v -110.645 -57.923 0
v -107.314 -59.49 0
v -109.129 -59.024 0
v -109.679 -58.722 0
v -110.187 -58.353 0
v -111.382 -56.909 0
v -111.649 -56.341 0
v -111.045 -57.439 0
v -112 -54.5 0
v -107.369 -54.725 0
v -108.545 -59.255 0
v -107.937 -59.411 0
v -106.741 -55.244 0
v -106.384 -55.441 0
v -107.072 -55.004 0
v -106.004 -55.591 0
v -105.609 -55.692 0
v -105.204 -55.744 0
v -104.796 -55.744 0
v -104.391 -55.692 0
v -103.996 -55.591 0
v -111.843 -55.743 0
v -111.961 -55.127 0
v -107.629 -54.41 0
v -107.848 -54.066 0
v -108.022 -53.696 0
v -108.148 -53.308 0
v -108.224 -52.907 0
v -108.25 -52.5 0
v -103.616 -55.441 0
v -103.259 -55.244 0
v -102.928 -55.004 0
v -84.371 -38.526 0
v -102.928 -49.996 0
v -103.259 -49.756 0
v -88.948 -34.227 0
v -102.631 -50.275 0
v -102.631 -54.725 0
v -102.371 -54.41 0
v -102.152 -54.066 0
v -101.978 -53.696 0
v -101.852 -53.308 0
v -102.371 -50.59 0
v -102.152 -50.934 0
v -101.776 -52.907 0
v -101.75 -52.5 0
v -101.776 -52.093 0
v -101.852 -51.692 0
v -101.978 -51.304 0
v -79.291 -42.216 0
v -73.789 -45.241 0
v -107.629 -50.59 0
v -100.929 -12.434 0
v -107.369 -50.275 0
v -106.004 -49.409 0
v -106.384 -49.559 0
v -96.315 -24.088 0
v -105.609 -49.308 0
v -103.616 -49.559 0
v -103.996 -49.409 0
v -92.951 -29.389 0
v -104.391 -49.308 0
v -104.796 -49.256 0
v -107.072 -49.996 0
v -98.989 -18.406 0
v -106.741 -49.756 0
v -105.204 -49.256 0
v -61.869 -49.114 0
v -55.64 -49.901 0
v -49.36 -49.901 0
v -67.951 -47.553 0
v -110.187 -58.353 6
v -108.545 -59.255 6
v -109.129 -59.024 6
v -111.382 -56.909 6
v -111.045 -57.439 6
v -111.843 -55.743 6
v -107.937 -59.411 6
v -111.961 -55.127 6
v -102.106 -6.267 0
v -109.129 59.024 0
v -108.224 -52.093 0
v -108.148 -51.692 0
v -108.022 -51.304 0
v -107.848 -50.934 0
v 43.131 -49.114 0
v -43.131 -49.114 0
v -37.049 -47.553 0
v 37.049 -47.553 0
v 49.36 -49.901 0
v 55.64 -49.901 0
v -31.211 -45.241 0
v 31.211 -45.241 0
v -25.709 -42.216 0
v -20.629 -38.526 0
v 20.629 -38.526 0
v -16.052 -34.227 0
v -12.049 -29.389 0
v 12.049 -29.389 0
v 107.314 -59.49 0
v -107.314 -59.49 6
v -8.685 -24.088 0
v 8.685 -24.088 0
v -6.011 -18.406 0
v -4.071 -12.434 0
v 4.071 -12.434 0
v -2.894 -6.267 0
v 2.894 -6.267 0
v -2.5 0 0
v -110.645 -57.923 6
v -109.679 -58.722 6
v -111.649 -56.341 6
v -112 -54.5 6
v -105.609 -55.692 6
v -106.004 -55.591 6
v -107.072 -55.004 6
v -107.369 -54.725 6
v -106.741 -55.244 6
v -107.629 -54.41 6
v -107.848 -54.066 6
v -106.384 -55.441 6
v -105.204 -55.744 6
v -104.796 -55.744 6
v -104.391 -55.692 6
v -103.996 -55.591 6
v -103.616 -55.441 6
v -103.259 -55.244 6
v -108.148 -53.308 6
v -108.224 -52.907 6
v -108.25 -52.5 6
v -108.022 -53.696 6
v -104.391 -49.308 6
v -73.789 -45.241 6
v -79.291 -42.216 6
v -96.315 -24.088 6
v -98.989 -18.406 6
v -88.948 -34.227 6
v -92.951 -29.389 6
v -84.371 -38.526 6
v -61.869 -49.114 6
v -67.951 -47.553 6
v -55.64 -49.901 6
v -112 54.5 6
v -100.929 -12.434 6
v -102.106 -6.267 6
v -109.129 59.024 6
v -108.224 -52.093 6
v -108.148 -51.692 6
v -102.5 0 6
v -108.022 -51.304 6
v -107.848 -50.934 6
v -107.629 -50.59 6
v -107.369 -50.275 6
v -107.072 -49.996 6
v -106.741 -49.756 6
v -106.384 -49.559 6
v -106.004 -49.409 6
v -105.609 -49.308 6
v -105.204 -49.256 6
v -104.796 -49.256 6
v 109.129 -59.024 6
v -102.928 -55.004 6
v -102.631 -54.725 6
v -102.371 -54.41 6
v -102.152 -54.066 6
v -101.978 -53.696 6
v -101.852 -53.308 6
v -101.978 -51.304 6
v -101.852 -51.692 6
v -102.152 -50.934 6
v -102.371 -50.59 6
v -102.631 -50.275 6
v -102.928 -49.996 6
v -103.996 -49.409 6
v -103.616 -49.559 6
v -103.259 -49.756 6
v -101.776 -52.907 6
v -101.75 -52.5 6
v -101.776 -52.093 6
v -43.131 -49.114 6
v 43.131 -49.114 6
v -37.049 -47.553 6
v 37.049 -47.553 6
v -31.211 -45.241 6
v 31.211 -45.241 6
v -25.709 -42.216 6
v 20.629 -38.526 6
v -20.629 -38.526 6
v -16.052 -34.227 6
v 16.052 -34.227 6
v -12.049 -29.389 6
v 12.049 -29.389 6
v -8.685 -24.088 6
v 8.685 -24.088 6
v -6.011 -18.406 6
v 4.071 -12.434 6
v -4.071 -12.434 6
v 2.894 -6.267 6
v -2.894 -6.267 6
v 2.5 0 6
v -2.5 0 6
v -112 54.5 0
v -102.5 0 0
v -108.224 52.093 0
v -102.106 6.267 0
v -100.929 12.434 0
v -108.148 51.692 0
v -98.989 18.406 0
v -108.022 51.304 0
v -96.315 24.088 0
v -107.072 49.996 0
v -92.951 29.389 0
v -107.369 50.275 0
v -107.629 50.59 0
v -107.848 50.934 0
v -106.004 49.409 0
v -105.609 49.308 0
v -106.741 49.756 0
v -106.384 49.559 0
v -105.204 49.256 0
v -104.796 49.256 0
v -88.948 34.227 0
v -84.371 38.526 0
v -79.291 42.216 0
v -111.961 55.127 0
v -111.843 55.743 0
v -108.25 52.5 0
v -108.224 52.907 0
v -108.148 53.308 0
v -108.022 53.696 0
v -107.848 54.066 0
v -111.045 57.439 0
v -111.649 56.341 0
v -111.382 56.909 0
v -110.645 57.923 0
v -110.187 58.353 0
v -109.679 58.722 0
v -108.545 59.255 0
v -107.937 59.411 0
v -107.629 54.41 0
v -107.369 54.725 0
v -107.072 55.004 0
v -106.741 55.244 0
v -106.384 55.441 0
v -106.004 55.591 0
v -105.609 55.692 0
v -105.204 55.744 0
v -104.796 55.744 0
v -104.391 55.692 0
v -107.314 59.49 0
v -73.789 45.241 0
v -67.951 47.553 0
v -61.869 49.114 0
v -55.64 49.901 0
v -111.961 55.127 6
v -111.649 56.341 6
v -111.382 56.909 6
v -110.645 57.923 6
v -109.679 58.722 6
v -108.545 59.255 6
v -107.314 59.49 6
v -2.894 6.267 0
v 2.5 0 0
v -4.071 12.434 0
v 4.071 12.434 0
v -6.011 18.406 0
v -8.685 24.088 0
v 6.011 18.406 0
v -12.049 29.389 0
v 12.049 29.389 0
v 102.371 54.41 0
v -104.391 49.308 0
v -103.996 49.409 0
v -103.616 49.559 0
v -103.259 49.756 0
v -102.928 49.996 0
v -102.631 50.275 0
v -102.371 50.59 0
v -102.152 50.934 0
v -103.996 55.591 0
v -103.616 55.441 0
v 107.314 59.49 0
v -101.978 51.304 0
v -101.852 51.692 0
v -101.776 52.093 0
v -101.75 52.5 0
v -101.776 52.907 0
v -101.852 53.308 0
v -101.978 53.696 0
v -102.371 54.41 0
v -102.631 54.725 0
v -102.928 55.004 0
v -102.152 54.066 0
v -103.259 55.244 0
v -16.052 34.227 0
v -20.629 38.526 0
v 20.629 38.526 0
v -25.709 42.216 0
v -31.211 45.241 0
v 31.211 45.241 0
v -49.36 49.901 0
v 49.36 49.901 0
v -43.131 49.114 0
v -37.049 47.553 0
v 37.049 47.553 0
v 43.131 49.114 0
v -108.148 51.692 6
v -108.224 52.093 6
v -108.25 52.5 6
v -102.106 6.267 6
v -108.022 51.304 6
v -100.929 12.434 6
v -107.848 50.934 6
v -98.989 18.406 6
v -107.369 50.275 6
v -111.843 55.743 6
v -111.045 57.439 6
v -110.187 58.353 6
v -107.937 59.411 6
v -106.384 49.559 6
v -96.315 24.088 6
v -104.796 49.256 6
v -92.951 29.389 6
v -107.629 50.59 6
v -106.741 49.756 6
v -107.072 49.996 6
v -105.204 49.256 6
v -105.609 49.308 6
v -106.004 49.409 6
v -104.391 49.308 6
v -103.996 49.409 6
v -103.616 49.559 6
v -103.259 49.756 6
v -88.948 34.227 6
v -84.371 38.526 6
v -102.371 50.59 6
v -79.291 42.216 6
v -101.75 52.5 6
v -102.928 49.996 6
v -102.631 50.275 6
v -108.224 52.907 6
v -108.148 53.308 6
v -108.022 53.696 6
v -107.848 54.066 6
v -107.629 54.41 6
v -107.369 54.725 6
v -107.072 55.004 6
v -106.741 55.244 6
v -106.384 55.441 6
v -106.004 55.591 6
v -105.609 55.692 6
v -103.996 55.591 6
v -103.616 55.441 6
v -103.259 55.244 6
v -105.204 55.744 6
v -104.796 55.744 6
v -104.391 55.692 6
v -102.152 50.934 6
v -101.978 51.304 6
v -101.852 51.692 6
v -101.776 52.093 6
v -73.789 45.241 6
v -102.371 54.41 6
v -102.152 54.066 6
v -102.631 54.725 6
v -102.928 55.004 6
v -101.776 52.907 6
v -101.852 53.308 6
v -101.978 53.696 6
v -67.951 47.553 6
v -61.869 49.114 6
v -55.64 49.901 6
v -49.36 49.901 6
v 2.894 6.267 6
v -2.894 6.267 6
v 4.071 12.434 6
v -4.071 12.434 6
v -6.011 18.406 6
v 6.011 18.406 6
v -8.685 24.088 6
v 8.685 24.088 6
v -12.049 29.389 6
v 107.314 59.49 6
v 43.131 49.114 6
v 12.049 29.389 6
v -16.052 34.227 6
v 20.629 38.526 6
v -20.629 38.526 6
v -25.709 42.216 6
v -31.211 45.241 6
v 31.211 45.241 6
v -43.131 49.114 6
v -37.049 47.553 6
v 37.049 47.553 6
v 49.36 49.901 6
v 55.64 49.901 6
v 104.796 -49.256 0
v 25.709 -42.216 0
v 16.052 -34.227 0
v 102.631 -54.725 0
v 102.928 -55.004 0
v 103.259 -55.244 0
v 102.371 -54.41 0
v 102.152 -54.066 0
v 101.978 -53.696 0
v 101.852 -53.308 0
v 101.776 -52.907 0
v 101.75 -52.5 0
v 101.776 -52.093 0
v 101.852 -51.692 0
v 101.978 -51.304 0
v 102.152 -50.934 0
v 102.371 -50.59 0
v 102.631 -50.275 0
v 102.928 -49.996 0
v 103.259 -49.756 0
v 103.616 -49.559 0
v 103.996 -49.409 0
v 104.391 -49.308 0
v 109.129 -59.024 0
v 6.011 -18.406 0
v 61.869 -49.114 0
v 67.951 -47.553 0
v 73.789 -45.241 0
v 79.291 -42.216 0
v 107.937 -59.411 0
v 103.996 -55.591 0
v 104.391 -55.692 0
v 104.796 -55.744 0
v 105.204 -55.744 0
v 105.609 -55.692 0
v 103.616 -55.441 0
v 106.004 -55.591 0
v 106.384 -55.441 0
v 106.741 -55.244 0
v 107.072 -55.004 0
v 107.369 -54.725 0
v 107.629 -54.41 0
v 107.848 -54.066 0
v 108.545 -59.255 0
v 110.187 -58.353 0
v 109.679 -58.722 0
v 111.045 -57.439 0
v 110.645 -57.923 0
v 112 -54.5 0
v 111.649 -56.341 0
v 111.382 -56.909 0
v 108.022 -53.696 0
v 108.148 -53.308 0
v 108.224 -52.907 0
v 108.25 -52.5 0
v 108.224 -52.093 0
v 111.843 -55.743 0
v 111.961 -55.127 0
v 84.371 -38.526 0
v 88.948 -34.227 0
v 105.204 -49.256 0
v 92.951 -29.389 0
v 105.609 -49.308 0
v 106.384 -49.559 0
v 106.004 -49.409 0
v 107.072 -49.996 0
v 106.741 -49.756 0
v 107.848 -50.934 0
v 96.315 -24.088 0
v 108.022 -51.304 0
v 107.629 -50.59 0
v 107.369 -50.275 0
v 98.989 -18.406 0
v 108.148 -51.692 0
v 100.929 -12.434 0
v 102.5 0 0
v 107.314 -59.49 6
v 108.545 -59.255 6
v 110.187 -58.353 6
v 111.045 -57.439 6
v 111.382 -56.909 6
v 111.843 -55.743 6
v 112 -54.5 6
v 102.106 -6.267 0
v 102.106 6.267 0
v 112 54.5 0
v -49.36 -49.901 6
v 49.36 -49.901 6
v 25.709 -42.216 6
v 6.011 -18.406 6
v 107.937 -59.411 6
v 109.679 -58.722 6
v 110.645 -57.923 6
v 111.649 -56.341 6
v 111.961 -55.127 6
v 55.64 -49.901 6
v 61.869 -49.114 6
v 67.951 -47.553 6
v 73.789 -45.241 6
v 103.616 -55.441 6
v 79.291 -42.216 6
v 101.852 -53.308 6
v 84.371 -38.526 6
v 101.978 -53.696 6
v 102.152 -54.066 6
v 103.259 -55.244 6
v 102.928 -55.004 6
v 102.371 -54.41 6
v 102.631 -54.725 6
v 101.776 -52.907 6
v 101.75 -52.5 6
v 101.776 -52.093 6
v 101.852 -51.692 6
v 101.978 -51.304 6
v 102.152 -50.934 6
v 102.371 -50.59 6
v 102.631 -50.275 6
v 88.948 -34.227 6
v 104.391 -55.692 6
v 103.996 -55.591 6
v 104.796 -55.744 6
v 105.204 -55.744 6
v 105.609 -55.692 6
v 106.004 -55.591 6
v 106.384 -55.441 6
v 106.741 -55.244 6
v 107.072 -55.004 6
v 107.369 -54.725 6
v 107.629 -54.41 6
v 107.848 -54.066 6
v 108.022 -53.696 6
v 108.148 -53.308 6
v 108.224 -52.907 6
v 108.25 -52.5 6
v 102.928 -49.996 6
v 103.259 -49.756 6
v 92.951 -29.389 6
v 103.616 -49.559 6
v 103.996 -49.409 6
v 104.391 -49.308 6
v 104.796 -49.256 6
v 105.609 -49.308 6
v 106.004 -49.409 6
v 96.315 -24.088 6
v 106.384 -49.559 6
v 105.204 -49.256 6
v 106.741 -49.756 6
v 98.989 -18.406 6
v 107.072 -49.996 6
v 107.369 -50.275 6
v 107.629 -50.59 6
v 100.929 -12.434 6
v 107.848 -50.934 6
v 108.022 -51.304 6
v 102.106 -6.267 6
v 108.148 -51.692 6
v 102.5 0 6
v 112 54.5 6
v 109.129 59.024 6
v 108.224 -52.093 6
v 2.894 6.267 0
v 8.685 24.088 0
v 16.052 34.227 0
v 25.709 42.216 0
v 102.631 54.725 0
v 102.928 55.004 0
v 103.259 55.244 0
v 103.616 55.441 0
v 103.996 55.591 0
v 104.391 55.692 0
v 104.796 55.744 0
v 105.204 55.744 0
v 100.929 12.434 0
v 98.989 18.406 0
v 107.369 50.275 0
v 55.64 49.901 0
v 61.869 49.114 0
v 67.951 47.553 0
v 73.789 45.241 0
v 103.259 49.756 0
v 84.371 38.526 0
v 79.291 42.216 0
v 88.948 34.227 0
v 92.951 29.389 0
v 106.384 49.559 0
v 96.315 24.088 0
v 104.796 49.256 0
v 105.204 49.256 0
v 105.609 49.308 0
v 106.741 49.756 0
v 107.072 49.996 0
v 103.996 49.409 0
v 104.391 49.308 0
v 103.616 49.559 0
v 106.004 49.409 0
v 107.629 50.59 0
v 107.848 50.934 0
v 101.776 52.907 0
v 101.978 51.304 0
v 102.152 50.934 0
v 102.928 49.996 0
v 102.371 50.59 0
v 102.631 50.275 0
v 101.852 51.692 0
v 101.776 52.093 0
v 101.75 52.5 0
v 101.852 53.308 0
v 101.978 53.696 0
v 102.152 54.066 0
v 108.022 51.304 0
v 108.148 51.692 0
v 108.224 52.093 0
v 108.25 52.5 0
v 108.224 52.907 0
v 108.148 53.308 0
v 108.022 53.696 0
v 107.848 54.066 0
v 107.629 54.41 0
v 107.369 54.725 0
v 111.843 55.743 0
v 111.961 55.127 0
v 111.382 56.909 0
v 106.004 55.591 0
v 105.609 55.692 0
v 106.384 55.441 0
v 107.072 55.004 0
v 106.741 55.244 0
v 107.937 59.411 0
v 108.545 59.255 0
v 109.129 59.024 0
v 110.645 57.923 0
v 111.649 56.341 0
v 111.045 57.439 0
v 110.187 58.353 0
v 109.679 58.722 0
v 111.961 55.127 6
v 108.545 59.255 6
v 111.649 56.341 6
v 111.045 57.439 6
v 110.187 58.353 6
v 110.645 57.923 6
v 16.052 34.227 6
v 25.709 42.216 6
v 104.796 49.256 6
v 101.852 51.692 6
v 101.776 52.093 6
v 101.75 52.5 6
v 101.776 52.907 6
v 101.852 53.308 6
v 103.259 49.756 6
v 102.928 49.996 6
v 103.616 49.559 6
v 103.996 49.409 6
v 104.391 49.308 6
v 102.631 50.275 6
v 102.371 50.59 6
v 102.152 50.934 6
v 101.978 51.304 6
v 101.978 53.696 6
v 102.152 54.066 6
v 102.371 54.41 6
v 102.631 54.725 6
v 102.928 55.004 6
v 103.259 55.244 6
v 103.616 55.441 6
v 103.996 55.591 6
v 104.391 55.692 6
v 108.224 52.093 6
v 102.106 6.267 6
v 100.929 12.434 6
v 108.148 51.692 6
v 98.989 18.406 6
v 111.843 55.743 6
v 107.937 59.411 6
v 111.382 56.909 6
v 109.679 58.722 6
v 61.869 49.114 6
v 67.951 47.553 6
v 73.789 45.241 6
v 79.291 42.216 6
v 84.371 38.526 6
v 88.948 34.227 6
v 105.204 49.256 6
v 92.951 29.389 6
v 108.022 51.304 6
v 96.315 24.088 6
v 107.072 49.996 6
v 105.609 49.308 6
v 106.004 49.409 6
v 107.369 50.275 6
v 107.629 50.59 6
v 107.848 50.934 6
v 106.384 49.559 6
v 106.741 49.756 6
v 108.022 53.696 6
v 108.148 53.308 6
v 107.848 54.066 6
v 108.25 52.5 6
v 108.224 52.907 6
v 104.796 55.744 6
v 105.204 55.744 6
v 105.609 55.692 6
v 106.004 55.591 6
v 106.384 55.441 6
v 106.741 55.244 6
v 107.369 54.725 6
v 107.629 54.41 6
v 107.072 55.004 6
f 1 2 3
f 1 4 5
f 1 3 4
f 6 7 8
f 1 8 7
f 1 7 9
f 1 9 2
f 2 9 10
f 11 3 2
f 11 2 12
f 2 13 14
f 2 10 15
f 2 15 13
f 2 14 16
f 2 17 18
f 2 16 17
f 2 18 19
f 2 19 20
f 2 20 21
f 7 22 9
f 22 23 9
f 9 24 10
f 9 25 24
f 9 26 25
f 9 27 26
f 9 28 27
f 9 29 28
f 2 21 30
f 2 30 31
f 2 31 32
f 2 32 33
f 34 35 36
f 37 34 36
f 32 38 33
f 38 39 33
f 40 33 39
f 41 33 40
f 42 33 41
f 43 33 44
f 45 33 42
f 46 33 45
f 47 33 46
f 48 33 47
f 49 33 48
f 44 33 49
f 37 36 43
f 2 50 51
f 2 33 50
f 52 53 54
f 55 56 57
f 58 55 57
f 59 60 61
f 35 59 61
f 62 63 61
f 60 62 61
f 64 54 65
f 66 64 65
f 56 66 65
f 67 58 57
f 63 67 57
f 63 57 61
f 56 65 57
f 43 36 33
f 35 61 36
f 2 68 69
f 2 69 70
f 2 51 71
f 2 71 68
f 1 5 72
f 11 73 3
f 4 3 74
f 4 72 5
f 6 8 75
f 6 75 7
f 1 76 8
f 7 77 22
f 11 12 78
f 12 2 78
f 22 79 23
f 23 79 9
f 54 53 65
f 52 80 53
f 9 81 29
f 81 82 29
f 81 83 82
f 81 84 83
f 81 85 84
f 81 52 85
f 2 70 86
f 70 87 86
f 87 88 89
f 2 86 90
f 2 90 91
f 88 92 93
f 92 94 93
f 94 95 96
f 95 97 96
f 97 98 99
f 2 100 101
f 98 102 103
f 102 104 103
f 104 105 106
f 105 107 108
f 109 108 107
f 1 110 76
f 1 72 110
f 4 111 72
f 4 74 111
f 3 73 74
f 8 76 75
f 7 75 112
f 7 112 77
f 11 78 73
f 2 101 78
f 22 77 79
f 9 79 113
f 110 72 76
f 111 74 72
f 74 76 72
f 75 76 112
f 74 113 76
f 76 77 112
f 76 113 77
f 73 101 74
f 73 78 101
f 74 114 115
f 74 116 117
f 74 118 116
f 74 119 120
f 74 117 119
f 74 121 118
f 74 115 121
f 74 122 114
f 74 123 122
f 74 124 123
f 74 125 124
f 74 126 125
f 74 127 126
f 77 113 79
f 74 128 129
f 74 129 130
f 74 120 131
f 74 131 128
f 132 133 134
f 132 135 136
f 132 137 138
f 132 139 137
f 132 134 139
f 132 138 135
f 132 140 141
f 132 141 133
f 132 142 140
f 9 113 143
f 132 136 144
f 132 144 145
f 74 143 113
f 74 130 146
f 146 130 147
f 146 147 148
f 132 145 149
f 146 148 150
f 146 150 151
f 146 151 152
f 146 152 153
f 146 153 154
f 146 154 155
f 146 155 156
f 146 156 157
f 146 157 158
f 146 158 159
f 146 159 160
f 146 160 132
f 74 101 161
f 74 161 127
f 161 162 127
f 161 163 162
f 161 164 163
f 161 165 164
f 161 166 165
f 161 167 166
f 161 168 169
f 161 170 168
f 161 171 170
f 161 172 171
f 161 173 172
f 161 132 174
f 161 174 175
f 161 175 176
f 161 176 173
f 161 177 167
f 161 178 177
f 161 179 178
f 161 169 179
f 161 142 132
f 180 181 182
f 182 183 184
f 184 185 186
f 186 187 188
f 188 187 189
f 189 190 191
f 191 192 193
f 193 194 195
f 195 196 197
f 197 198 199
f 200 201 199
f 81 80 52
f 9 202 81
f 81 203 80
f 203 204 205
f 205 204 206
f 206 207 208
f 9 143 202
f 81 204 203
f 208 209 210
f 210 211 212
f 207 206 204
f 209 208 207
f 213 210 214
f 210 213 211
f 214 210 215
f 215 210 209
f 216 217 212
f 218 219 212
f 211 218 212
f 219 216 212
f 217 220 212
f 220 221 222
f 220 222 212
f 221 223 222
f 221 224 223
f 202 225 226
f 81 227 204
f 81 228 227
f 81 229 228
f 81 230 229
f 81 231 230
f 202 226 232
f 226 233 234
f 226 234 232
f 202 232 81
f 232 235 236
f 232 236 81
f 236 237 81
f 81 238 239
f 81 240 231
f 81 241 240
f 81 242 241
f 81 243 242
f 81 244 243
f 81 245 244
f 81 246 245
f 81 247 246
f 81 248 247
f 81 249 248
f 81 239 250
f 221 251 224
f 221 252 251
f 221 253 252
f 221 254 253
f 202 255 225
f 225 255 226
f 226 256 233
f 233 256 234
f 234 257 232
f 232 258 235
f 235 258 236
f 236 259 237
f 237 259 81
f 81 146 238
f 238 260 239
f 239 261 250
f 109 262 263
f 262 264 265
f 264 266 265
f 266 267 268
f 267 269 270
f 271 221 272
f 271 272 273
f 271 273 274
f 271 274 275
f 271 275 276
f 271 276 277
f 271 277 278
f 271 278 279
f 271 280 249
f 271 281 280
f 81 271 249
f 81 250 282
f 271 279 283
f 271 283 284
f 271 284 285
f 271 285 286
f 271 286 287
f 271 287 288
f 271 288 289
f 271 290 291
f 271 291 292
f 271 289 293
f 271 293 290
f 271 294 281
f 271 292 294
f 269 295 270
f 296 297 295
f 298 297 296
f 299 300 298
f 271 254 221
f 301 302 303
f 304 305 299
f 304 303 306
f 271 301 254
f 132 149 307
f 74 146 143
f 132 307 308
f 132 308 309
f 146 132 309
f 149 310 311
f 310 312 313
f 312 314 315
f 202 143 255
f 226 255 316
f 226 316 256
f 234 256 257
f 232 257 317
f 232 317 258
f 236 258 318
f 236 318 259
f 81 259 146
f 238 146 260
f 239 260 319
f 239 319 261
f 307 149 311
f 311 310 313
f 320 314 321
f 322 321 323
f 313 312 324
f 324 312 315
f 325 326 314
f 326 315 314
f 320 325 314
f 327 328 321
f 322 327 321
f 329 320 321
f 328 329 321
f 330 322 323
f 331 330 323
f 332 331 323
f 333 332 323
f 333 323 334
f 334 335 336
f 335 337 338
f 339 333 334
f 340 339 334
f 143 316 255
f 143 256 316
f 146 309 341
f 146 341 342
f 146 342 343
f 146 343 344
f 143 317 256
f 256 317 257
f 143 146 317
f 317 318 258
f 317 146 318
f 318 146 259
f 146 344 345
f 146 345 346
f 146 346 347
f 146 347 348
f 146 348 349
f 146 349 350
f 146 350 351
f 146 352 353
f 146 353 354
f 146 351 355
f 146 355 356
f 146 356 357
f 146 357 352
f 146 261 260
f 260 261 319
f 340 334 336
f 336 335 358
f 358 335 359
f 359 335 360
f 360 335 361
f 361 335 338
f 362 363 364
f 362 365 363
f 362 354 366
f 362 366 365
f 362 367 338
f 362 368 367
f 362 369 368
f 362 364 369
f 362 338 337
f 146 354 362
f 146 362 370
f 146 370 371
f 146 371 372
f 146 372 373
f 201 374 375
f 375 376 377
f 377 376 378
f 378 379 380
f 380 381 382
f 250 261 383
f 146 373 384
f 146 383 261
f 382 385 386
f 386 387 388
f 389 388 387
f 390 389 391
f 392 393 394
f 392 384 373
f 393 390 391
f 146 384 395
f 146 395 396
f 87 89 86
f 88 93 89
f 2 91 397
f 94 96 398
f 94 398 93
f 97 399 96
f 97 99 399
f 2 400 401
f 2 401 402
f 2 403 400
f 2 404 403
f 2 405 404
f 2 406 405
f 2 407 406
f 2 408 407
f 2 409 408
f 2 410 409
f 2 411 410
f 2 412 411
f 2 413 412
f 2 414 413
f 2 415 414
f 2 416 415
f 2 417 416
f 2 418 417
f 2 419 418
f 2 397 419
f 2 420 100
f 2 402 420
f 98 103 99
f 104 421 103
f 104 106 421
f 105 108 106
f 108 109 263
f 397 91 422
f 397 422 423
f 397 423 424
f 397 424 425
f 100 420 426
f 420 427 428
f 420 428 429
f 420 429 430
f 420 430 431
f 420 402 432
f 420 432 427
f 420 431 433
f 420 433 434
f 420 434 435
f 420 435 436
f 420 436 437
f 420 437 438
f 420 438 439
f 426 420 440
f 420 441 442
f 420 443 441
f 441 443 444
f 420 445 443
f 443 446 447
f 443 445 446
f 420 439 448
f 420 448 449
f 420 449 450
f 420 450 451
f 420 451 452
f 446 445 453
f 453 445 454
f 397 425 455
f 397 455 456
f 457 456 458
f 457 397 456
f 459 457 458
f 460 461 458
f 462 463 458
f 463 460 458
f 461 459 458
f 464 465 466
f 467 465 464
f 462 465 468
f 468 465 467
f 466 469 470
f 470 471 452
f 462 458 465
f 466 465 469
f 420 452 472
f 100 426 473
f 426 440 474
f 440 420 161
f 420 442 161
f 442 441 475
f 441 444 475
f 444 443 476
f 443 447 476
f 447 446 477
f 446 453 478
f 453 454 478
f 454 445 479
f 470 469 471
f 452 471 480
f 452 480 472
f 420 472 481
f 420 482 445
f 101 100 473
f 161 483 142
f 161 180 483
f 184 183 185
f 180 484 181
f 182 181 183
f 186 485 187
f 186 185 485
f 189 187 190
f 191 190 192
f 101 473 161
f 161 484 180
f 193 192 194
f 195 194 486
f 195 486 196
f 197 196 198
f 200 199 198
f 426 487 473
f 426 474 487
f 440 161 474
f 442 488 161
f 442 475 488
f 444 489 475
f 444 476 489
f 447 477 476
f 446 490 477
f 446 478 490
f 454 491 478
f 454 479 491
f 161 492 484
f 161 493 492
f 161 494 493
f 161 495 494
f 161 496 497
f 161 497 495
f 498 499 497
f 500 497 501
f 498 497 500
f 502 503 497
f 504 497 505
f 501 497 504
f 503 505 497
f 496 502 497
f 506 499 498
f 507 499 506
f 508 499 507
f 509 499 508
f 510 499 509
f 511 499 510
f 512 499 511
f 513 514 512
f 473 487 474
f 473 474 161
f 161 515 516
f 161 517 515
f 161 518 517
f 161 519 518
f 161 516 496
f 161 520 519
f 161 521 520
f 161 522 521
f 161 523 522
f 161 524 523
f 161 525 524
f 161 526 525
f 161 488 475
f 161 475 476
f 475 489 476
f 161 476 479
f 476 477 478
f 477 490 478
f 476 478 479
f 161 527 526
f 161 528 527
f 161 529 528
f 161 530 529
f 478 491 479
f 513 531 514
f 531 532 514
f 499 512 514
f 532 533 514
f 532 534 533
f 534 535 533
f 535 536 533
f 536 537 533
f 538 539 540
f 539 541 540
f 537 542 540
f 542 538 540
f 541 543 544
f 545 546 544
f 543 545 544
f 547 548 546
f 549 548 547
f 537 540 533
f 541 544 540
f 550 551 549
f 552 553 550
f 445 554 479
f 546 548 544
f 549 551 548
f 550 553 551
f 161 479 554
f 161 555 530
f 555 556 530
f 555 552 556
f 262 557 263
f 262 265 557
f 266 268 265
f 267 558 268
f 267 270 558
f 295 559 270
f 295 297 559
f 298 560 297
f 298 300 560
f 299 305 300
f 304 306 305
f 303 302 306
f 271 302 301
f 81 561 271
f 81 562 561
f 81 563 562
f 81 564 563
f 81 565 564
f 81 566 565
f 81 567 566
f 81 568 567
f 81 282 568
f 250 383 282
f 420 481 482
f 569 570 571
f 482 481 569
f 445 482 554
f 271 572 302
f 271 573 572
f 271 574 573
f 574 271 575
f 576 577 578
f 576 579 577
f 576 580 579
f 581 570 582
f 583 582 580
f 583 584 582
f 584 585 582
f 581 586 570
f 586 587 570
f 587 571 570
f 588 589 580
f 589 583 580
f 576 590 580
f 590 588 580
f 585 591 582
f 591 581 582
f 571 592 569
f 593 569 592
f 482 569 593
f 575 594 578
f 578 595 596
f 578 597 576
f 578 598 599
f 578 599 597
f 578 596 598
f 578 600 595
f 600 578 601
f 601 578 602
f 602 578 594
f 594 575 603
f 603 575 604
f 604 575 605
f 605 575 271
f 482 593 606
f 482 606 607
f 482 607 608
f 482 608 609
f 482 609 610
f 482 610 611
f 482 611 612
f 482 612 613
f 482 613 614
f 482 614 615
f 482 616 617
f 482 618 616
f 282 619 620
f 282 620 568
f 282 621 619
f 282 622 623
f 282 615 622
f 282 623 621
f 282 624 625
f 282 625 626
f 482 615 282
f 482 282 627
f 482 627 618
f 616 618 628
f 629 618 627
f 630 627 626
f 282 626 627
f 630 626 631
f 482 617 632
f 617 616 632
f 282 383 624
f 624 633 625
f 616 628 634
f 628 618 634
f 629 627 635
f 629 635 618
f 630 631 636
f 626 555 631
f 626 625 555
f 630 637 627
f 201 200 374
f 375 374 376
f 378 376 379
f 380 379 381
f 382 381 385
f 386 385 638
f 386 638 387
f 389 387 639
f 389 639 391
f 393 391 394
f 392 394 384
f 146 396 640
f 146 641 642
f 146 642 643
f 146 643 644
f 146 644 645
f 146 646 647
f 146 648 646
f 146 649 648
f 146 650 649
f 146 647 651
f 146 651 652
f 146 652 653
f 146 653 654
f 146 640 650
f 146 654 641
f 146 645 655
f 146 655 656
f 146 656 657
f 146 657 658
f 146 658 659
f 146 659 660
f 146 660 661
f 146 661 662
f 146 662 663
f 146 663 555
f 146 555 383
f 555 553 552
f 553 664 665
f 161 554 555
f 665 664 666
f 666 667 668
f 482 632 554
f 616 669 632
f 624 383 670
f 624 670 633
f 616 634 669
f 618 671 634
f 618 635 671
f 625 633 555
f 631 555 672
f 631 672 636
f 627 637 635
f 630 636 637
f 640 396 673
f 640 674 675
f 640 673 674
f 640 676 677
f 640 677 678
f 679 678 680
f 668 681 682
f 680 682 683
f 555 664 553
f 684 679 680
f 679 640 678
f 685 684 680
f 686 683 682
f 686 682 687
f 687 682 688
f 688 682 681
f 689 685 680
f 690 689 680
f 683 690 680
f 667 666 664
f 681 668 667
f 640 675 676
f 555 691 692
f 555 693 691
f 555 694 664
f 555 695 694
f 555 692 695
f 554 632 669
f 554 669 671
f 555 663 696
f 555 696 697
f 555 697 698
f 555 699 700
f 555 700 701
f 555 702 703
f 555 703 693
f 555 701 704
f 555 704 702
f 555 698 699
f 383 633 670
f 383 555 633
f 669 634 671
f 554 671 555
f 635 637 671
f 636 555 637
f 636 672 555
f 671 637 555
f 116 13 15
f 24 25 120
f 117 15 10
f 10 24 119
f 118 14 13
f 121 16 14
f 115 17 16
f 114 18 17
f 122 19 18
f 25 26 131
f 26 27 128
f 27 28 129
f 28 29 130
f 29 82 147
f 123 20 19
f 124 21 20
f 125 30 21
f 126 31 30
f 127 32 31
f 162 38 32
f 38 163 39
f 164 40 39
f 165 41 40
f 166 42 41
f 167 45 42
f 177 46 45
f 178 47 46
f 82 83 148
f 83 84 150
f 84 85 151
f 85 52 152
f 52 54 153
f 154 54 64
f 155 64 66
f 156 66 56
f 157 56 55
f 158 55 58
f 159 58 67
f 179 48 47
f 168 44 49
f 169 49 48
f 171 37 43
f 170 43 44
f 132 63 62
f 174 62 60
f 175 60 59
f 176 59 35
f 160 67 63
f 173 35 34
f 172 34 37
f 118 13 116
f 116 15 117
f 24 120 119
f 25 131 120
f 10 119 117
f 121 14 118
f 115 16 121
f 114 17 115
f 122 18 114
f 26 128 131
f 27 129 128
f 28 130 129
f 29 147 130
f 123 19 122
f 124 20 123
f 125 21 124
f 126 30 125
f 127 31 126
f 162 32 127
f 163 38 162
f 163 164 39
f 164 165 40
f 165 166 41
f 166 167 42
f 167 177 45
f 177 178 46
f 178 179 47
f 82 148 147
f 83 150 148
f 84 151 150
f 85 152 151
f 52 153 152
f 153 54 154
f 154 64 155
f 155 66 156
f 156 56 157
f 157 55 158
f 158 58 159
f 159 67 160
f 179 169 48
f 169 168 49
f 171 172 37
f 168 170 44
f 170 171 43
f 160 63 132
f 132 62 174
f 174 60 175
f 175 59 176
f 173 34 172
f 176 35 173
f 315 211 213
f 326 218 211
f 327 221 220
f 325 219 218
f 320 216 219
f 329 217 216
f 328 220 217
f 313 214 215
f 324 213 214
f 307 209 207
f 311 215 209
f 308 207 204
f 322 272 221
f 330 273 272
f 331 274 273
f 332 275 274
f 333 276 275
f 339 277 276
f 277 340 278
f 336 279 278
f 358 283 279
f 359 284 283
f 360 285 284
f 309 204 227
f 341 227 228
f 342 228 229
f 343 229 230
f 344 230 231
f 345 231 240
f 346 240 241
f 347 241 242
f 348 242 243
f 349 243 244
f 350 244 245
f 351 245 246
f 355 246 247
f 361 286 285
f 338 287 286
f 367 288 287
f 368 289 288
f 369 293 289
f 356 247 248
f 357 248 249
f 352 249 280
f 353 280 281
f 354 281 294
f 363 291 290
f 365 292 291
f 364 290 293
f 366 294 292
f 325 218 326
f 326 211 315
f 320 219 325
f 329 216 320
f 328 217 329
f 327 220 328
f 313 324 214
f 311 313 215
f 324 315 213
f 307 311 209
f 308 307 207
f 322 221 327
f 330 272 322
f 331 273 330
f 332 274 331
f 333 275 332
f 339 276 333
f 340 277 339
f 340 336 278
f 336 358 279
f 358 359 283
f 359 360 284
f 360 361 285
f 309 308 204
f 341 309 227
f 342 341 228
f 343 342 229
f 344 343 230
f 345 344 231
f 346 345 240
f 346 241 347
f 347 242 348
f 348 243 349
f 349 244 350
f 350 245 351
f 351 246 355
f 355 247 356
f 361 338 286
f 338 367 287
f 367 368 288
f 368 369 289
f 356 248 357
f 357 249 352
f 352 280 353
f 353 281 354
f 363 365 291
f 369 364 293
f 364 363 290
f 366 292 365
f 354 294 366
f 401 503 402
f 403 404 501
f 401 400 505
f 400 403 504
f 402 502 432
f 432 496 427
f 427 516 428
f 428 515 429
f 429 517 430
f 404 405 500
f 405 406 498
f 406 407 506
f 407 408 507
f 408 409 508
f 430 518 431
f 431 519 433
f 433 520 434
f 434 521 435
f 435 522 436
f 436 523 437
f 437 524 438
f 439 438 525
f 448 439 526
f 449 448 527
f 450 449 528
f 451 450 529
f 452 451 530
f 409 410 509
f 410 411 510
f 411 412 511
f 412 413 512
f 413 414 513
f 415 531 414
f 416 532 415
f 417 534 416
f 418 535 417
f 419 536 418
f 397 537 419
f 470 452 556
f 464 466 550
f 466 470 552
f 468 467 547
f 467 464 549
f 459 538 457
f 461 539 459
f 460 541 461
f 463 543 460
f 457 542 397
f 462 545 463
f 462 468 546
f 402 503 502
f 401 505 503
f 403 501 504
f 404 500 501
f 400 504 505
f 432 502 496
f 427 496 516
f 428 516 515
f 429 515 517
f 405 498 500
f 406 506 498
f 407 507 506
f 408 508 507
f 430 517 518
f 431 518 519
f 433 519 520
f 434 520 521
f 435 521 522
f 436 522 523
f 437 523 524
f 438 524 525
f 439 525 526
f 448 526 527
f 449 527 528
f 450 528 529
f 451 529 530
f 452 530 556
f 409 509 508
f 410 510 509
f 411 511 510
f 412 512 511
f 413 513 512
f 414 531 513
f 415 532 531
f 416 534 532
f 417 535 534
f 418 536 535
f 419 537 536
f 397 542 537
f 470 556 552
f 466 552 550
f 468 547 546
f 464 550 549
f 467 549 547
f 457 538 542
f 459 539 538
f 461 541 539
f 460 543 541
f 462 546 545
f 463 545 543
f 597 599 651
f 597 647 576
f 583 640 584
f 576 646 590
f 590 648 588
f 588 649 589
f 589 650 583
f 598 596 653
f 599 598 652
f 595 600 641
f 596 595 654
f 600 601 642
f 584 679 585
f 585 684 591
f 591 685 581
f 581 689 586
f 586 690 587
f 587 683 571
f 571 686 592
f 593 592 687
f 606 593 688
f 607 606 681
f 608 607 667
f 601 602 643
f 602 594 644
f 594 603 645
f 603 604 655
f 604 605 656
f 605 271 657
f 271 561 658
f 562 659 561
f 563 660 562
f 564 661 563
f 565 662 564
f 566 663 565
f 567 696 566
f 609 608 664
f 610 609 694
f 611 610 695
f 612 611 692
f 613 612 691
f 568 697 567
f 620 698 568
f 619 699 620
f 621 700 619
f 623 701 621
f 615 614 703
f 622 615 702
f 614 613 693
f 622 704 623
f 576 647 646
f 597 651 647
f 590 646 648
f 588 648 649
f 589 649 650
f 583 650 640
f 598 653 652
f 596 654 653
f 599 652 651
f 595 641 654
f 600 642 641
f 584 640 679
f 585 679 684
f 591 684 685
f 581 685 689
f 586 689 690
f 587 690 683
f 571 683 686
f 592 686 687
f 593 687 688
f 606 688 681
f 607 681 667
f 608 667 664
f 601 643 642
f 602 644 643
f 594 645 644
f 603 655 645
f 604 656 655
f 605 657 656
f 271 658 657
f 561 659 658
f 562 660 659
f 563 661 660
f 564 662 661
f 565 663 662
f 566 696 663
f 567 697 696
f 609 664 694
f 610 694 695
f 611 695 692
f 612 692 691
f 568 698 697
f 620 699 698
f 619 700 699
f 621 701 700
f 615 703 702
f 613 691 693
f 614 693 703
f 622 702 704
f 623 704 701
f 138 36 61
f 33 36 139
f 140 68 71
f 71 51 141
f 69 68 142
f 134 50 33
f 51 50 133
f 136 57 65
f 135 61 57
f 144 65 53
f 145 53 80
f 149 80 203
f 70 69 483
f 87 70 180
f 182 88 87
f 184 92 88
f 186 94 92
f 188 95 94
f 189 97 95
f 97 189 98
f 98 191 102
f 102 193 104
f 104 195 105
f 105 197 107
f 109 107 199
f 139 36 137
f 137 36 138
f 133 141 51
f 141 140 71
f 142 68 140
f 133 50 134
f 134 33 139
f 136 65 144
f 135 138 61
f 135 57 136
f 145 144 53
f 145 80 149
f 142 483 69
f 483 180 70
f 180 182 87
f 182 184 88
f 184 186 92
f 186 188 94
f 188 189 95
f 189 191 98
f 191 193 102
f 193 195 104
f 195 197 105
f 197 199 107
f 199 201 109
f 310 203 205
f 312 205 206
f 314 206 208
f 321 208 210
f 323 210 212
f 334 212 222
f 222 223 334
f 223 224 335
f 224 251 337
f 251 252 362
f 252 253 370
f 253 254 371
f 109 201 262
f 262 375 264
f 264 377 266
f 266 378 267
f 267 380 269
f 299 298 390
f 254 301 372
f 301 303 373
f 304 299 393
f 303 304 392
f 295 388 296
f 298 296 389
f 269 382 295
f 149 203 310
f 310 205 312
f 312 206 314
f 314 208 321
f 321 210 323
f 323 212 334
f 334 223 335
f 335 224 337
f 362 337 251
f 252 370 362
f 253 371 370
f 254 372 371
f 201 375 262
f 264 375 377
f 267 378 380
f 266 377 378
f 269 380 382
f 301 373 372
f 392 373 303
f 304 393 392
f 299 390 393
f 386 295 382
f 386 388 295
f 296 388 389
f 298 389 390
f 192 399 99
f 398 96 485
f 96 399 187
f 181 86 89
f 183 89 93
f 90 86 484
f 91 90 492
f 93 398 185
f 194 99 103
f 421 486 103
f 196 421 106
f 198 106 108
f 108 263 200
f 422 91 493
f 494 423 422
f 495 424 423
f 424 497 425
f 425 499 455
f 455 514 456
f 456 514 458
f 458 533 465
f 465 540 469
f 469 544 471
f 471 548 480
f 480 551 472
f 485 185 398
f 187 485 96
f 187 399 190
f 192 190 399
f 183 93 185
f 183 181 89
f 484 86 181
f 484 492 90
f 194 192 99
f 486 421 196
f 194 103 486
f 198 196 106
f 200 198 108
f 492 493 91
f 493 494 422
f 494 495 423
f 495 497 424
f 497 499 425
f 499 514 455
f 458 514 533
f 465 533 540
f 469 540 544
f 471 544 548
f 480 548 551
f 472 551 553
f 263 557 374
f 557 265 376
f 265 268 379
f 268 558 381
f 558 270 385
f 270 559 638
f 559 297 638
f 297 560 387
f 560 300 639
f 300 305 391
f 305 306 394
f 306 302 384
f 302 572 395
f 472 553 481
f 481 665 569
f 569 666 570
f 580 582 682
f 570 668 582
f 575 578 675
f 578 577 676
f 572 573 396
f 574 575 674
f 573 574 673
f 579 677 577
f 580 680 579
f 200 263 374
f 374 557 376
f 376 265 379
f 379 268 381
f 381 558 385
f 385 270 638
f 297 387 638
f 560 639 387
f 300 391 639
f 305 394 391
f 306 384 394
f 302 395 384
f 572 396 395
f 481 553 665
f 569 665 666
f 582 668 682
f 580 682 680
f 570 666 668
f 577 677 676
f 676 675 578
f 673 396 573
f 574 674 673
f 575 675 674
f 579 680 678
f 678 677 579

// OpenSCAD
$fn = 50;

difference() {
	union() {
		hull() {
			translate(v = [-107.0, 54.5, 0]) {
				cylinder(h = 6, r = 5);
			}
			translate(v = [107.0, 54.5, 0]) {
				cylinder(h = 6, r = 5);
			}
			translate(v = [-107.0, -54.5, 0]) {
				cylinder(h = 6, r = 5);
			}
			translate(v = [107.0, -54.5, 0]) {
				cylinder(h = 6, r = 5);
			}
		}
	}
	union() {
		translate(v = [-105.0, -52.5, -100.0]) {
			cylinder(h = 200, r = 3.25);
		}
		translate(v = [-105.0, 52.5, -100.0]) {
			cylinder(h = 200, r = 3.25);
		}
		translate(v = [105.0, -52.5, -100.0]) {
			cylinder(h = 200, r = 3.25);
		}
		translate(v = [105.0, 52.5, -100.0]) {
			cylinder(h = 200, r = 3.25);
		}
		translate(v = [-105.0, -52.5, -100.0]) {
			cylinder(h = 200, r = 1.8);
		}
		translate(v = [-105.0, 52.5, -100.0]) {
			cylinder(h = 200, r = 1.8);
		}
		translate(v = [105.0, -52.5, -100.0]) {
			cylinder(h = 200, r = 1.8);
		}
		translate(v = [105.0, 52.5, -100.0]) {
			cylinder(h = 200, r = 1.8);
		}
		translate(v = [-52.5, 0, 0.0]) {
			cylinder(h = 6, r = 50.0);
		}
		translate(v = [52.5, 0, 0.0]) {
			cylinder(h = 6, r = 50.0);
		}
	}
}
